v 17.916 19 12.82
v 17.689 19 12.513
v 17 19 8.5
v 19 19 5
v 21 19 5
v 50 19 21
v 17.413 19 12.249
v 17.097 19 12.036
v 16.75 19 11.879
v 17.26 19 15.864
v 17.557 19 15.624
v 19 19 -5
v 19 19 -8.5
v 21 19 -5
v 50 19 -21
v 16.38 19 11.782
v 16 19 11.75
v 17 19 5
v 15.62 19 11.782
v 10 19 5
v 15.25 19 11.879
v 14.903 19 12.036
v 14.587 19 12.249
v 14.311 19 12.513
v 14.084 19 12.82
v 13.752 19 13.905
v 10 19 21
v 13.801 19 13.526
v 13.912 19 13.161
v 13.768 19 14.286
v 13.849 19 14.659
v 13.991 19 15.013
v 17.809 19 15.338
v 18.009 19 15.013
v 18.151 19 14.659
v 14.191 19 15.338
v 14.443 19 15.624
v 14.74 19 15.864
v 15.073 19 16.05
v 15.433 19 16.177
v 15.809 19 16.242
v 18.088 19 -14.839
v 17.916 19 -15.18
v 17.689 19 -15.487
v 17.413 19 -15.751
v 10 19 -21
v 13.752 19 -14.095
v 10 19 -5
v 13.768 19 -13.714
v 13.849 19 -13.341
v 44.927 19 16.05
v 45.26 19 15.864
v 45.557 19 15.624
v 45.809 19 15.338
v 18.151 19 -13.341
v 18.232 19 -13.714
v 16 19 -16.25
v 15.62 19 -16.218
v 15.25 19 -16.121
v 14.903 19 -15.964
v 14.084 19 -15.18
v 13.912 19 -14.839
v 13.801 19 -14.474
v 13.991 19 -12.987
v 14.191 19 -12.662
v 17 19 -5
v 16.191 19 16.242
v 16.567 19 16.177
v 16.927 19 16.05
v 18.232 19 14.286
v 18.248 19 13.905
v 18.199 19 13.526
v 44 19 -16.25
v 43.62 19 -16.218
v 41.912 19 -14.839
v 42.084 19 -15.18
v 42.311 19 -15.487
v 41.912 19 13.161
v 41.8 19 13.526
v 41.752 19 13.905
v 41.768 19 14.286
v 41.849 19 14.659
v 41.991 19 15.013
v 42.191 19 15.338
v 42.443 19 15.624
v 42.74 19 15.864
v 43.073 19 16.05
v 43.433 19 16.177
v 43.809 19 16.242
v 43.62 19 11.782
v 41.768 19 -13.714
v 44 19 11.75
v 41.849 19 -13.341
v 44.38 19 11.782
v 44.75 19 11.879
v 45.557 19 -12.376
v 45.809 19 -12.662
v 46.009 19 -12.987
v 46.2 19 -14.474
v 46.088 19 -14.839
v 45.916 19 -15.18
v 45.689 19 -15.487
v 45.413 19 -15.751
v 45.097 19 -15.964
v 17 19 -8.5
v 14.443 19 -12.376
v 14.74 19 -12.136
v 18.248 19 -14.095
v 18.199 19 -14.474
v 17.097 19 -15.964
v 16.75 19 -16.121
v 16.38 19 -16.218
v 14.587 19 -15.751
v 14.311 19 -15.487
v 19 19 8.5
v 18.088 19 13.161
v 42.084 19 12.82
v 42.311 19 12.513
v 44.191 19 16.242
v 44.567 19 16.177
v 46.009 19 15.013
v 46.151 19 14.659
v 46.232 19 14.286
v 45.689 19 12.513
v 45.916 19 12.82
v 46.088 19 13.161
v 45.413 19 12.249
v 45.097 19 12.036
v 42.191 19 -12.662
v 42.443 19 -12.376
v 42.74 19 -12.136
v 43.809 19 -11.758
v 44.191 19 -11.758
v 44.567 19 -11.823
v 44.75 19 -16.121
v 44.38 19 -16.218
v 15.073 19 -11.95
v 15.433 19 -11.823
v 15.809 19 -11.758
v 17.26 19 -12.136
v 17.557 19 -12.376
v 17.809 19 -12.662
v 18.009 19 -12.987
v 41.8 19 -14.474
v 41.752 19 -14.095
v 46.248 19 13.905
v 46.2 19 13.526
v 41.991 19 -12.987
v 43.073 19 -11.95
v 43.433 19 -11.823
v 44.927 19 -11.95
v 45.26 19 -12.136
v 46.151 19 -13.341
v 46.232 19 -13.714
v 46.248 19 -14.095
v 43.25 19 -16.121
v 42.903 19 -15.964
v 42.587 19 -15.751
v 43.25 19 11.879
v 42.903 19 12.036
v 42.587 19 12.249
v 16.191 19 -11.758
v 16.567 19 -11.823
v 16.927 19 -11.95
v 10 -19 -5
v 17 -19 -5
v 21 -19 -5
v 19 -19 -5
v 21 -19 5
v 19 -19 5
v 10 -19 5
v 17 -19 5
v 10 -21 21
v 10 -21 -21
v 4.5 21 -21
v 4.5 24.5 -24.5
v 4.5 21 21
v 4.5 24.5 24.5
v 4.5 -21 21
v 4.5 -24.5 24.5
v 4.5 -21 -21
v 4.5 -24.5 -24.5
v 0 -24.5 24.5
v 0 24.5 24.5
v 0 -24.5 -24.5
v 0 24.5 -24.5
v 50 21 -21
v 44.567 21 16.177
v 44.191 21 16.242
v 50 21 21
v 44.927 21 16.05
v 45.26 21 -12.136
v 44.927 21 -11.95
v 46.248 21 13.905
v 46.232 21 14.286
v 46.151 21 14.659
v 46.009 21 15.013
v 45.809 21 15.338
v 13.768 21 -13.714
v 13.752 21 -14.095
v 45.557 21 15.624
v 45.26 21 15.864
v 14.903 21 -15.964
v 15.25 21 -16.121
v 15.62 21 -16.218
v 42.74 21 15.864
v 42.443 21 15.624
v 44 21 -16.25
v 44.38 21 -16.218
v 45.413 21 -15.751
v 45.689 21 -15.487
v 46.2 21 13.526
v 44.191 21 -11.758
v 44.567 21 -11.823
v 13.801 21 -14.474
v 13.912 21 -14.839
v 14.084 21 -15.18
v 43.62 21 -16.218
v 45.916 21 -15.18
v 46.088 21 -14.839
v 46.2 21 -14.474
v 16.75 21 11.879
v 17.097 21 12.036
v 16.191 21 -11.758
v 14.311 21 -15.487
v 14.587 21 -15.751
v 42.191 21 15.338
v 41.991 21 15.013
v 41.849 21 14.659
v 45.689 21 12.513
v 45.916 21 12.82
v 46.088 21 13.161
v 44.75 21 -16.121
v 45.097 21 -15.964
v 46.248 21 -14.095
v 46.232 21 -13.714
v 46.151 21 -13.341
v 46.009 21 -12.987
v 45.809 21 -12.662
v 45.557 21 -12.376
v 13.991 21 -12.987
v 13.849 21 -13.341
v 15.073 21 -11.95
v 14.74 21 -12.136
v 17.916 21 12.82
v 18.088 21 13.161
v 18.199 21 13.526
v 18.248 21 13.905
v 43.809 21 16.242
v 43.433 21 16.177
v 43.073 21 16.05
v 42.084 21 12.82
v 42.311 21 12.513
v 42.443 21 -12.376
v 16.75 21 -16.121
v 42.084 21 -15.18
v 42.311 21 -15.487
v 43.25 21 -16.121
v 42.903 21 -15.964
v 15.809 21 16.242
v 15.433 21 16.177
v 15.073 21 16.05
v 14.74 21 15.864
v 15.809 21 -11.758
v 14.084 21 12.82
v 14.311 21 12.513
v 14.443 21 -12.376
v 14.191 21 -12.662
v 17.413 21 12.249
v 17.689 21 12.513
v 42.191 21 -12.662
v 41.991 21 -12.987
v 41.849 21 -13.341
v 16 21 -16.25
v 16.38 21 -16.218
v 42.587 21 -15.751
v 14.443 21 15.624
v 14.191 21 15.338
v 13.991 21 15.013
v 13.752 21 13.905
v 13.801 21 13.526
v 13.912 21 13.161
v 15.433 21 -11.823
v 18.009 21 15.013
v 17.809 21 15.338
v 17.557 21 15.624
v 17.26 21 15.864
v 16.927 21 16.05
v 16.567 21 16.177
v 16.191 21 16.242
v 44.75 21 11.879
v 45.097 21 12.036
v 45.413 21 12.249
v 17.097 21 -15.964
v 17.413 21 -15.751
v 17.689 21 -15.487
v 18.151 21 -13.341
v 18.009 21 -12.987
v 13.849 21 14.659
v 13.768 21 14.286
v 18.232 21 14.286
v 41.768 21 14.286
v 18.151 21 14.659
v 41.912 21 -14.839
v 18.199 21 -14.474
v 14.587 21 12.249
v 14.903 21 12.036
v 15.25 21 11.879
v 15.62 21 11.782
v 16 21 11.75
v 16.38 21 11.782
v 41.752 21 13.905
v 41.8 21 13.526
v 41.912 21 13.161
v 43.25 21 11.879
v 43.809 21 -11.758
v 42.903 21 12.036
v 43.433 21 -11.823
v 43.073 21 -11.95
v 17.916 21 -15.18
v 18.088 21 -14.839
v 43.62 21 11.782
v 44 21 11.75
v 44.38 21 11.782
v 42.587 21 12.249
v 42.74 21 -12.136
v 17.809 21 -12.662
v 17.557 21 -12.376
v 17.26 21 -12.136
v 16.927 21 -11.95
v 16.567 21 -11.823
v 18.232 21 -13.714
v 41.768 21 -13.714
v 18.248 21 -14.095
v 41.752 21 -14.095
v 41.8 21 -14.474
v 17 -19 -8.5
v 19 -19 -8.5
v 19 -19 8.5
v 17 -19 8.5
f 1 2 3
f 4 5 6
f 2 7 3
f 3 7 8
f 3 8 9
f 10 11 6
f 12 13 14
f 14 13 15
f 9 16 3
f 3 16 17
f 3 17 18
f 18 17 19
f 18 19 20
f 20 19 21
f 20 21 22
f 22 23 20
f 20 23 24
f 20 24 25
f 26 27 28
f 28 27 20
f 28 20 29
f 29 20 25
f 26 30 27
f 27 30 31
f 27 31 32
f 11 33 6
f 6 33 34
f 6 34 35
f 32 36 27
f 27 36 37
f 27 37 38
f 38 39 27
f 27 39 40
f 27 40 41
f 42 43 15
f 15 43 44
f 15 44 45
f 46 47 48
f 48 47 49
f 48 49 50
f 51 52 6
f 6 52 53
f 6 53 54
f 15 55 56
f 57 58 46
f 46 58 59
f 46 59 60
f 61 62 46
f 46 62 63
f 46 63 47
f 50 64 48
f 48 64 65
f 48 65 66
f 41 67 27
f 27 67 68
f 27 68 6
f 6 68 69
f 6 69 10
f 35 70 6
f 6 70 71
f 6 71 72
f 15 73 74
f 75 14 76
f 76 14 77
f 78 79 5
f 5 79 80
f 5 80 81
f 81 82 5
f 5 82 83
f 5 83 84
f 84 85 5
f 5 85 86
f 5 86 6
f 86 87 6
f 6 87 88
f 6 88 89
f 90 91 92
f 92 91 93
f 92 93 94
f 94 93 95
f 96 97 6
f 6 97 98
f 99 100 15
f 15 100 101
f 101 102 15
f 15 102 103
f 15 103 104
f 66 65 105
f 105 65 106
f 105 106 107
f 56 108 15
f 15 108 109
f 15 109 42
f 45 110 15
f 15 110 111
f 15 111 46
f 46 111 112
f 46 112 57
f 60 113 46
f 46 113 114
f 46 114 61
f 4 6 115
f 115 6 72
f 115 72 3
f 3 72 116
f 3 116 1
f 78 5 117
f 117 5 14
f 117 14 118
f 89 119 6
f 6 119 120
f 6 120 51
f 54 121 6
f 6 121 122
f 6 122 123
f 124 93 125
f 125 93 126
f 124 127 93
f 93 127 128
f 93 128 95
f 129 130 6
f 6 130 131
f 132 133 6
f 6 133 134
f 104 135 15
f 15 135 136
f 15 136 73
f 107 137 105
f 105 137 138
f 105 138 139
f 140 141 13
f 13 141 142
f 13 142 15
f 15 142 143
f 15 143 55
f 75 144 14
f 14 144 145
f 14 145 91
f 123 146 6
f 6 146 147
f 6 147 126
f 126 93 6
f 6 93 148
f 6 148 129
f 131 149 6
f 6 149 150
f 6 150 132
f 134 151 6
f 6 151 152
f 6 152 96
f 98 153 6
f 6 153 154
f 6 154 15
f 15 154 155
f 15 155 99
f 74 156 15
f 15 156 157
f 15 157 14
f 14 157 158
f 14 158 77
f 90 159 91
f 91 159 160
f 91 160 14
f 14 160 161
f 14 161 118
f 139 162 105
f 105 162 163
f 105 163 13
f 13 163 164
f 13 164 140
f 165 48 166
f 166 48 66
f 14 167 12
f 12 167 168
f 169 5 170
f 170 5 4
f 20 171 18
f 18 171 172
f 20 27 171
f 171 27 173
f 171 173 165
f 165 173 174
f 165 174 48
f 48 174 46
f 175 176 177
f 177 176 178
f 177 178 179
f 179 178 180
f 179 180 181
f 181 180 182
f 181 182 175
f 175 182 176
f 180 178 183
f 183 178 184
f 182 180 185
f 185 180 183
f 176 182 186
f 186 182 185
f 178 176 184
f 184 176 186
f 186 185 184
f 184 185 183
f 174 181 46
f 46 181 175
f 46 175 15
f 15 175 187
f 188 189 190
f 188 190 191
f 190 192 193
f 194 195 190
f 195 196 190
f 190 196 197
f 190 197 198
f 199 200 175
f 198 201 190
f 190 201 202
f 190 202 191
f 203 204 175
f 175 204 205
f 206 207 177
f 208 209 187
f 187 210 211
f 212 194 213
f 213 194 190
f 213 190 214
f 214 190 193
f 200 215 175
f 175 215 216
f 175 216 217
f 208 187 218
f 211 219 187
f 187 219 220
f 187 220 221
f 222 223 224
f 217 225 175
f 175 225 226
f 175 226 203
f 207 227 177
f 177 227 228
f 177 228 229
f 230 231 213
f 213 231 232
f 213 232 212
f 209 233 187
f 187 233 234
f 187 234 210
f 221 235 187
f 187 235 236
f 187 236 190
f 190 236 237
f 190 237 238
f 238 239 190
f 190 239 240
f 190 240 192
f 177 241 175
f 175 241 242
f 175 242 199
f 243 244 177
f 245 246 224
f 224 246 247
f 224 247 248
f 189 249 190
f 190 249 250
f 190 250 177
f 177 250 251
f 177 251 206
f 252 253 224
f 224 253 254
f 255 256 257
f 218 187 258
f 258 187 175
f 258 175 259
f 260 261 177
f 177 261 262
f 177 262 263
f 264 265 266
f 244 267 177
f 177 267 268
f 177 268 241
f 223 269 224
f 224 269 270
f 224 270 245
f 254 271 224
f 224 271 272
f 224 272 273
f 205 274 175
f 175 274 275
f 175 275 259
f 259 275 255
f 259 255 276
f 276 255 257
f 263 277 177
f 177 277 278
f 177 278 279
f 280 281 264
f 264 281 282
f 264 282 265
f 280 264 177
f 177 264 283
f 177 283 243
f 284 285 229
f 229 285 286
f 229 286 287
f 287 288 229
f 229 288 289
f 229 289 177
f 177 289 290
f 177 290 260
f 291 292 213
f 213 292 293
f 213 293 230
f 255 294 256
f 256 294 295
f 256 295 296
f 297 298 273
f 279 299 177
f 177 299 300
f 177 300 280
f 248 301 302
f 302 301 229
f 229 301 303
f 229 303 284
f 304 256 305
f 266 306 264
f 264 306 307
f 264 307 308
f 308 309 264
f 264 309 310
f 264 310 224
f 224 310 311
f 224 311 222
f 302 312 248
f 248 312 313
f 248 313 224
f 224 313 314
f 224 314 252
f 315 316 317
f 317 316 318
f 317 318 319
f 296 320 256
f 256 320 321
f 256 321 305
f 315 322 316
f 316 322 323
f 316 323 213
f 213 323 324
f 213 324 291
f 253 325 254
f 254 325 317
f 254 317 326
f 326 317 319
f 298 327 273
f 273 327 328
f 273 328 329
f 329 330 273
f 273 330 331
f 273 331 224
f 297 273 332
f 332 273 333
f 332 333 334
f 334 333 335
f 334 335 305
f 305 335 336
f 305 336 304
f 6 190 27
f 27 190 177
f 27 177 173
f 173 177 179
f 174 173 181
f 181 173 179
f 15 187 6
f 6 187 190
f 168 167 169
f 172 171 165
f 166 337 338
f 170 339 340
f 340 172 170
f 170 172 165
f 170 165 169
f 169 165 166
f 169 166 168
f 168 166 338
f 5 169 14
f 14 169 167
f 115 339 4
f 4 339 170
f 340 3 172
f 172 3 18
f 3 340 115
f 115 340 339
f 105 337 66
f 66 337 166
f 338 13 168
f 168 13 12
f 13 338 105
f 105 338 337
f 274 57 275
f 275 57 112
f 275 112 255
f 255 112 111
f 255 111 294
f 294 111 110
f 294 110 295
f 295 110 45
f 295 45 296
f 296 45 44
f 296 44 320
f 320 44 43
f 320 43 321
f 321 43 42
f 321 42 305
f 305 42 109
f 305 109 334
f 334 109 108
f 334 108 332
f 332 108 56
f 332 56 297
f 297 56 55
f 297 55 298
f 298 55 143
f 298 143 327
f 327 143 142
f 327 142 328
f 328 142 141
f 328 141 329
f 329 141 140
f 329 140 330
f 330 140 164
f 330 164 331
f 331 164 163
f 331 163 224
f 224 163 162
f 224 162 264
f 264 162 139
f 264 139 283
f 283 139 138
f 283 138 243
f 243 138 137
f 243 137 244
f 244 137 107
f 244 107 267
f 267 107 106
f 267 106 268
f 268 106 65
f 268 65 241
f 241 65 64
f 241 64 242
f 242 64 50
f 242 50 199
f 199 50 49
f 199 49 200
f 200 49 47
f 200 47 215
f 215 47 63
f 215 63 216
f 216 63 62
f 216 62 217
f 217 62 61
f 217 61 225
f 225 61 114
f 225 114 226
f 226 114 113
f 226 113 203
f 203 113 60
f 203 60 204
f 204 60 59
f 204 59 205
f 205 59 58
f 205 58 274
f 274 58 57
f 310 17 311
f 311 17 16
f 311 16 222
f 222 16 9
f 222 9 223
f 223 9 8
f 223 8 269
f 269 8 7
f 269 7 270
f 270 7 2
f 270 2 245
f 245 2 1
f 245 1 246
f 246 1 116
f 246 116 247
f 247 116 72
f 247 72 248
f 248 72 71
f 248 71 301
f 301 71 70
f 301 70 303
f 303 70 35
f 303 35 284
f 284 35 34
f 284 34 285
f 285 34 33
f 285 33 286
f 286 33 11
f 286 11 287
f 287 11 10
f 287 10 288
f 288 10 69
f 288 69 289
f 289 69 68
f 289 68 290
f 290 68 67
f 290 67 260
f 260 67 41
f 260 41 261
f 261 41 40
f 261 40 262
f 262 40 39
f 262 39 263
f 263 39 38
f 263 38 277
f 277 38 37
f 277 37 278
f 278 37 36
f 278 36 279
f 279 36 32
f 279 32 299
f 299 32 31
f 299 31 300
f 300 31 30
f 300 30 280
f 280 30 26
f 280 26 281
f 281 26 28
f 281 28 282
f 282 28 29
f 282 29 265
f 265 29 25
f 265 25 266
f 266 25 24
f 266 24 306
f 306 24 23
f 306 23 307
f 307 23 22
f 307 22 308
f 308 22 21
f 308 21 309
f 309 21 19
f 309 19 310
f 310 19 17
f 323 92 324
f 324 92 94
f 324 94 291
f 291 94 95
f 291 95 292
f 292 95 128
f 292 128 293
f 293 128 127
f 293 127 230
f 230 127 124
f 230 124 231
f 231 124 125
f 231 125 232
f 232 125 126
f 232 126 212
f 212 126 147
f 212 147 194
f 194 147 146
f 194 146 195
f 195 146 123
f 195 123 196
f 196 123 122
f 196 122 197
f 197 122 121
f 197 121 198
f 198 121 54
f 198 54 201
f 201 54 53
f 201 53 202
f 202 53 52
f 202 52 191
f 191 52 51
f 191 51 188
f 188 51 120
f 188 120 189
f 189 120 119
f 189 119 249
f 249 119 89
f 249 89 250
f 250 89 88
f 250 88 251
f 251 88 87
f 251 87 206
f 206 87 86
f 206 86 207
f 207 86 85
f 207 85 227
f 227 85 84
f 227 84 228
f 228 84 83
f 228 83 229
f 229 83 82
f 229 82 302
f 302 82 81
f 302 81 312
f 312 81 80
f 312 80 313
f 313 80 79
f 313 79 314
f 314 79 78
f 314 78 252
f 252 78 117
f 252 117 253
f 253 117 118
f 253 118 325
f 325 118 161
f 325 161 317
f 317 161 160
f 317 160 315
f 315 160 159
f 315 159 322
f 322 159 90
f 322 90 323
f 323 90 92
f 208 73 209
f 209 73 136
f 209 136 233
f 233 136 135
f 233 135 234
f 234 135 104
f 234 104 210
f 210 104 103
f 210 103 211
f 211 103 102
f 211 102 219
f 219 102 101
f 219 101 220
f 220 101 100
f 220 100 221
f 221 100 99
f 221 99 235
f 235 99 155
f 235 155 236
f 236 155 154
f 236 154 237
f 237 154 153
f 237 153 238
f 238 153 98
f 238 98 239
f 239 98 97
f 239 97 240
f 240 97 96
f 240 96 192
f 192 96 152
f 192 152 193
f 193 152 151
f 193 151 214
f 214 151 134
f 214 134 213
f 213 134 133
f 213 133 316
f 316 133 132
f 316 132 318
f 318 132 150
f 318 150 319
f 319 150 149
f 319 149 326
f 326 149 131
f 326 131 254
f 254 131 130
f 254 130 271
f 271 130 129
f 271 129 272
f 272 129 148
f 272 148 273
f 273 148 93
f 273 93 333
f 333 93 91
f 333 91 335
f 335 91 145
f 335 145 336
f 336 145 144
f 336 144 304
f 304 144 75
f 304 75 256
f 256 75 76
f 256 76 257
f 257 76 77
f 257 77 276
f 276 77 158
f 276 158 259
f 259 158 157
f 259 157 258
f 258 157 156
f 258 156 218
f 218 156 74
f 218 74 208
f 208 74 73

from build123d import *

# Parameters (mm, degrees)
SKETCH1_W                  = 49
SKETCH1_H                  = 49
BOSS_EXTRUDE1_DEPTH        = 4.5
SKETCH3_W                  = 42
SKETCH3_H                  = 42
BOSS_EXTRUDE3_DEPTH        = 5.5
SKETCH4_W                  = 42
SKETCH4_H                  = 2
BOSS_EXTRUDE4_DEPTH        = 40
SKETCH5_W                  = 10
SKETCH5_H                  = 38
BOSS_EXTRUDE5_DEPTH        = 11
SKETCH6_W                  = 2
SKETCH6_H                  = 38
BOSS_EXTRUDE6_DEPTH        = 3.5
SKETCH7_W                  = 2
SKETCH7_H                  = 38
BOSS_EXTRUDE7_DEPTH        = 3.5
F_4_5_4_5_DIAMETER_SLOT1_D = 4.5


with BuildPart() as part:
    # Sketch1 → Boss-Extrude1 (new body)
    with BuildSketch(Plane(origin=(0, 0, 0), x_dir=(0, 0, -1), z_dir=(1, 0, 0))):
        Rectangle(SKETCH1_W, SKETCH1_H)
    extrude(amount=BOSS_EXTRUDE1_DEPTH)

    # Sketch3 → Boss-Extrude3 (add)
    with BuildSketch(Plane(origin=(4.5, 0, 0), x_dir=(0, 0, -1), z_dir=(1, 0, 0))):
        Rectangle(SKETCH3_W, SKETCH3_H)
    extrude(amount=BOSS_EXTRUDE3_DEPTH)

    # Sketch4 → Boss-Extrude4 (add)
    with BuildSketch(Plane(origin=(10, 0, 0), x_dir=(0, 0, -1), z_dir=(1, 0, 0))):
        with Locations((0, 20)):
            Rectangle(SKETCH4_W, SKETCH4_H)
    extrude(amount=BOSS_EXTRUDE4_DEPTH)

    # Sketch5 → Boss-Extrude5 (add)
    with BuildSketch(Plane(origin=(10, 0, 0), x_dir=(0, 0, -1), z_dir=(1, 0, 0))):
        Rectangle(SKETCH5_W, SKETCH5_H)
    extrude(amount=BOSS_EXTRUDE5_DEPTH)

    # Sketch6 → Boss-Extrude6 (add)
    with BuildSketch(Plane.XY.offset(5)):
        with Locations((18, 0)):
            Rectangle(SKETCH6_W, SKETCH6_H)
    extrude(amount=BOSS_EXTRUDE6_DEPTH)

    # Sketch7 → Boss-Extrude7 (add)
    with BuildSketch(Plane(origin=(0, 0, -5), x_dir=(-1, 0, 0), z_dir=(0, 0, -1))):
        with Locations((-18, 0)):
            Rectangle(SKETCH7_W, SKETCH7_H)
    extrude(amount=BOSS_EXTRUDE7_DEPTH)

    # Ø4.5 (4.5) Diameter Slot1 (through all)
    with Locations(Plane(origin=(0, 19, 0), x_dir=(-1, 0, 0), z_dir=(0, -1, 0))):
        with Locations((-44, 14), (-44, -14), (-16, -14), (-16, 14)):
            Hole(F_4_5_4_5_DIAMETER_SLOT1_D / 2)


solid = part.part
